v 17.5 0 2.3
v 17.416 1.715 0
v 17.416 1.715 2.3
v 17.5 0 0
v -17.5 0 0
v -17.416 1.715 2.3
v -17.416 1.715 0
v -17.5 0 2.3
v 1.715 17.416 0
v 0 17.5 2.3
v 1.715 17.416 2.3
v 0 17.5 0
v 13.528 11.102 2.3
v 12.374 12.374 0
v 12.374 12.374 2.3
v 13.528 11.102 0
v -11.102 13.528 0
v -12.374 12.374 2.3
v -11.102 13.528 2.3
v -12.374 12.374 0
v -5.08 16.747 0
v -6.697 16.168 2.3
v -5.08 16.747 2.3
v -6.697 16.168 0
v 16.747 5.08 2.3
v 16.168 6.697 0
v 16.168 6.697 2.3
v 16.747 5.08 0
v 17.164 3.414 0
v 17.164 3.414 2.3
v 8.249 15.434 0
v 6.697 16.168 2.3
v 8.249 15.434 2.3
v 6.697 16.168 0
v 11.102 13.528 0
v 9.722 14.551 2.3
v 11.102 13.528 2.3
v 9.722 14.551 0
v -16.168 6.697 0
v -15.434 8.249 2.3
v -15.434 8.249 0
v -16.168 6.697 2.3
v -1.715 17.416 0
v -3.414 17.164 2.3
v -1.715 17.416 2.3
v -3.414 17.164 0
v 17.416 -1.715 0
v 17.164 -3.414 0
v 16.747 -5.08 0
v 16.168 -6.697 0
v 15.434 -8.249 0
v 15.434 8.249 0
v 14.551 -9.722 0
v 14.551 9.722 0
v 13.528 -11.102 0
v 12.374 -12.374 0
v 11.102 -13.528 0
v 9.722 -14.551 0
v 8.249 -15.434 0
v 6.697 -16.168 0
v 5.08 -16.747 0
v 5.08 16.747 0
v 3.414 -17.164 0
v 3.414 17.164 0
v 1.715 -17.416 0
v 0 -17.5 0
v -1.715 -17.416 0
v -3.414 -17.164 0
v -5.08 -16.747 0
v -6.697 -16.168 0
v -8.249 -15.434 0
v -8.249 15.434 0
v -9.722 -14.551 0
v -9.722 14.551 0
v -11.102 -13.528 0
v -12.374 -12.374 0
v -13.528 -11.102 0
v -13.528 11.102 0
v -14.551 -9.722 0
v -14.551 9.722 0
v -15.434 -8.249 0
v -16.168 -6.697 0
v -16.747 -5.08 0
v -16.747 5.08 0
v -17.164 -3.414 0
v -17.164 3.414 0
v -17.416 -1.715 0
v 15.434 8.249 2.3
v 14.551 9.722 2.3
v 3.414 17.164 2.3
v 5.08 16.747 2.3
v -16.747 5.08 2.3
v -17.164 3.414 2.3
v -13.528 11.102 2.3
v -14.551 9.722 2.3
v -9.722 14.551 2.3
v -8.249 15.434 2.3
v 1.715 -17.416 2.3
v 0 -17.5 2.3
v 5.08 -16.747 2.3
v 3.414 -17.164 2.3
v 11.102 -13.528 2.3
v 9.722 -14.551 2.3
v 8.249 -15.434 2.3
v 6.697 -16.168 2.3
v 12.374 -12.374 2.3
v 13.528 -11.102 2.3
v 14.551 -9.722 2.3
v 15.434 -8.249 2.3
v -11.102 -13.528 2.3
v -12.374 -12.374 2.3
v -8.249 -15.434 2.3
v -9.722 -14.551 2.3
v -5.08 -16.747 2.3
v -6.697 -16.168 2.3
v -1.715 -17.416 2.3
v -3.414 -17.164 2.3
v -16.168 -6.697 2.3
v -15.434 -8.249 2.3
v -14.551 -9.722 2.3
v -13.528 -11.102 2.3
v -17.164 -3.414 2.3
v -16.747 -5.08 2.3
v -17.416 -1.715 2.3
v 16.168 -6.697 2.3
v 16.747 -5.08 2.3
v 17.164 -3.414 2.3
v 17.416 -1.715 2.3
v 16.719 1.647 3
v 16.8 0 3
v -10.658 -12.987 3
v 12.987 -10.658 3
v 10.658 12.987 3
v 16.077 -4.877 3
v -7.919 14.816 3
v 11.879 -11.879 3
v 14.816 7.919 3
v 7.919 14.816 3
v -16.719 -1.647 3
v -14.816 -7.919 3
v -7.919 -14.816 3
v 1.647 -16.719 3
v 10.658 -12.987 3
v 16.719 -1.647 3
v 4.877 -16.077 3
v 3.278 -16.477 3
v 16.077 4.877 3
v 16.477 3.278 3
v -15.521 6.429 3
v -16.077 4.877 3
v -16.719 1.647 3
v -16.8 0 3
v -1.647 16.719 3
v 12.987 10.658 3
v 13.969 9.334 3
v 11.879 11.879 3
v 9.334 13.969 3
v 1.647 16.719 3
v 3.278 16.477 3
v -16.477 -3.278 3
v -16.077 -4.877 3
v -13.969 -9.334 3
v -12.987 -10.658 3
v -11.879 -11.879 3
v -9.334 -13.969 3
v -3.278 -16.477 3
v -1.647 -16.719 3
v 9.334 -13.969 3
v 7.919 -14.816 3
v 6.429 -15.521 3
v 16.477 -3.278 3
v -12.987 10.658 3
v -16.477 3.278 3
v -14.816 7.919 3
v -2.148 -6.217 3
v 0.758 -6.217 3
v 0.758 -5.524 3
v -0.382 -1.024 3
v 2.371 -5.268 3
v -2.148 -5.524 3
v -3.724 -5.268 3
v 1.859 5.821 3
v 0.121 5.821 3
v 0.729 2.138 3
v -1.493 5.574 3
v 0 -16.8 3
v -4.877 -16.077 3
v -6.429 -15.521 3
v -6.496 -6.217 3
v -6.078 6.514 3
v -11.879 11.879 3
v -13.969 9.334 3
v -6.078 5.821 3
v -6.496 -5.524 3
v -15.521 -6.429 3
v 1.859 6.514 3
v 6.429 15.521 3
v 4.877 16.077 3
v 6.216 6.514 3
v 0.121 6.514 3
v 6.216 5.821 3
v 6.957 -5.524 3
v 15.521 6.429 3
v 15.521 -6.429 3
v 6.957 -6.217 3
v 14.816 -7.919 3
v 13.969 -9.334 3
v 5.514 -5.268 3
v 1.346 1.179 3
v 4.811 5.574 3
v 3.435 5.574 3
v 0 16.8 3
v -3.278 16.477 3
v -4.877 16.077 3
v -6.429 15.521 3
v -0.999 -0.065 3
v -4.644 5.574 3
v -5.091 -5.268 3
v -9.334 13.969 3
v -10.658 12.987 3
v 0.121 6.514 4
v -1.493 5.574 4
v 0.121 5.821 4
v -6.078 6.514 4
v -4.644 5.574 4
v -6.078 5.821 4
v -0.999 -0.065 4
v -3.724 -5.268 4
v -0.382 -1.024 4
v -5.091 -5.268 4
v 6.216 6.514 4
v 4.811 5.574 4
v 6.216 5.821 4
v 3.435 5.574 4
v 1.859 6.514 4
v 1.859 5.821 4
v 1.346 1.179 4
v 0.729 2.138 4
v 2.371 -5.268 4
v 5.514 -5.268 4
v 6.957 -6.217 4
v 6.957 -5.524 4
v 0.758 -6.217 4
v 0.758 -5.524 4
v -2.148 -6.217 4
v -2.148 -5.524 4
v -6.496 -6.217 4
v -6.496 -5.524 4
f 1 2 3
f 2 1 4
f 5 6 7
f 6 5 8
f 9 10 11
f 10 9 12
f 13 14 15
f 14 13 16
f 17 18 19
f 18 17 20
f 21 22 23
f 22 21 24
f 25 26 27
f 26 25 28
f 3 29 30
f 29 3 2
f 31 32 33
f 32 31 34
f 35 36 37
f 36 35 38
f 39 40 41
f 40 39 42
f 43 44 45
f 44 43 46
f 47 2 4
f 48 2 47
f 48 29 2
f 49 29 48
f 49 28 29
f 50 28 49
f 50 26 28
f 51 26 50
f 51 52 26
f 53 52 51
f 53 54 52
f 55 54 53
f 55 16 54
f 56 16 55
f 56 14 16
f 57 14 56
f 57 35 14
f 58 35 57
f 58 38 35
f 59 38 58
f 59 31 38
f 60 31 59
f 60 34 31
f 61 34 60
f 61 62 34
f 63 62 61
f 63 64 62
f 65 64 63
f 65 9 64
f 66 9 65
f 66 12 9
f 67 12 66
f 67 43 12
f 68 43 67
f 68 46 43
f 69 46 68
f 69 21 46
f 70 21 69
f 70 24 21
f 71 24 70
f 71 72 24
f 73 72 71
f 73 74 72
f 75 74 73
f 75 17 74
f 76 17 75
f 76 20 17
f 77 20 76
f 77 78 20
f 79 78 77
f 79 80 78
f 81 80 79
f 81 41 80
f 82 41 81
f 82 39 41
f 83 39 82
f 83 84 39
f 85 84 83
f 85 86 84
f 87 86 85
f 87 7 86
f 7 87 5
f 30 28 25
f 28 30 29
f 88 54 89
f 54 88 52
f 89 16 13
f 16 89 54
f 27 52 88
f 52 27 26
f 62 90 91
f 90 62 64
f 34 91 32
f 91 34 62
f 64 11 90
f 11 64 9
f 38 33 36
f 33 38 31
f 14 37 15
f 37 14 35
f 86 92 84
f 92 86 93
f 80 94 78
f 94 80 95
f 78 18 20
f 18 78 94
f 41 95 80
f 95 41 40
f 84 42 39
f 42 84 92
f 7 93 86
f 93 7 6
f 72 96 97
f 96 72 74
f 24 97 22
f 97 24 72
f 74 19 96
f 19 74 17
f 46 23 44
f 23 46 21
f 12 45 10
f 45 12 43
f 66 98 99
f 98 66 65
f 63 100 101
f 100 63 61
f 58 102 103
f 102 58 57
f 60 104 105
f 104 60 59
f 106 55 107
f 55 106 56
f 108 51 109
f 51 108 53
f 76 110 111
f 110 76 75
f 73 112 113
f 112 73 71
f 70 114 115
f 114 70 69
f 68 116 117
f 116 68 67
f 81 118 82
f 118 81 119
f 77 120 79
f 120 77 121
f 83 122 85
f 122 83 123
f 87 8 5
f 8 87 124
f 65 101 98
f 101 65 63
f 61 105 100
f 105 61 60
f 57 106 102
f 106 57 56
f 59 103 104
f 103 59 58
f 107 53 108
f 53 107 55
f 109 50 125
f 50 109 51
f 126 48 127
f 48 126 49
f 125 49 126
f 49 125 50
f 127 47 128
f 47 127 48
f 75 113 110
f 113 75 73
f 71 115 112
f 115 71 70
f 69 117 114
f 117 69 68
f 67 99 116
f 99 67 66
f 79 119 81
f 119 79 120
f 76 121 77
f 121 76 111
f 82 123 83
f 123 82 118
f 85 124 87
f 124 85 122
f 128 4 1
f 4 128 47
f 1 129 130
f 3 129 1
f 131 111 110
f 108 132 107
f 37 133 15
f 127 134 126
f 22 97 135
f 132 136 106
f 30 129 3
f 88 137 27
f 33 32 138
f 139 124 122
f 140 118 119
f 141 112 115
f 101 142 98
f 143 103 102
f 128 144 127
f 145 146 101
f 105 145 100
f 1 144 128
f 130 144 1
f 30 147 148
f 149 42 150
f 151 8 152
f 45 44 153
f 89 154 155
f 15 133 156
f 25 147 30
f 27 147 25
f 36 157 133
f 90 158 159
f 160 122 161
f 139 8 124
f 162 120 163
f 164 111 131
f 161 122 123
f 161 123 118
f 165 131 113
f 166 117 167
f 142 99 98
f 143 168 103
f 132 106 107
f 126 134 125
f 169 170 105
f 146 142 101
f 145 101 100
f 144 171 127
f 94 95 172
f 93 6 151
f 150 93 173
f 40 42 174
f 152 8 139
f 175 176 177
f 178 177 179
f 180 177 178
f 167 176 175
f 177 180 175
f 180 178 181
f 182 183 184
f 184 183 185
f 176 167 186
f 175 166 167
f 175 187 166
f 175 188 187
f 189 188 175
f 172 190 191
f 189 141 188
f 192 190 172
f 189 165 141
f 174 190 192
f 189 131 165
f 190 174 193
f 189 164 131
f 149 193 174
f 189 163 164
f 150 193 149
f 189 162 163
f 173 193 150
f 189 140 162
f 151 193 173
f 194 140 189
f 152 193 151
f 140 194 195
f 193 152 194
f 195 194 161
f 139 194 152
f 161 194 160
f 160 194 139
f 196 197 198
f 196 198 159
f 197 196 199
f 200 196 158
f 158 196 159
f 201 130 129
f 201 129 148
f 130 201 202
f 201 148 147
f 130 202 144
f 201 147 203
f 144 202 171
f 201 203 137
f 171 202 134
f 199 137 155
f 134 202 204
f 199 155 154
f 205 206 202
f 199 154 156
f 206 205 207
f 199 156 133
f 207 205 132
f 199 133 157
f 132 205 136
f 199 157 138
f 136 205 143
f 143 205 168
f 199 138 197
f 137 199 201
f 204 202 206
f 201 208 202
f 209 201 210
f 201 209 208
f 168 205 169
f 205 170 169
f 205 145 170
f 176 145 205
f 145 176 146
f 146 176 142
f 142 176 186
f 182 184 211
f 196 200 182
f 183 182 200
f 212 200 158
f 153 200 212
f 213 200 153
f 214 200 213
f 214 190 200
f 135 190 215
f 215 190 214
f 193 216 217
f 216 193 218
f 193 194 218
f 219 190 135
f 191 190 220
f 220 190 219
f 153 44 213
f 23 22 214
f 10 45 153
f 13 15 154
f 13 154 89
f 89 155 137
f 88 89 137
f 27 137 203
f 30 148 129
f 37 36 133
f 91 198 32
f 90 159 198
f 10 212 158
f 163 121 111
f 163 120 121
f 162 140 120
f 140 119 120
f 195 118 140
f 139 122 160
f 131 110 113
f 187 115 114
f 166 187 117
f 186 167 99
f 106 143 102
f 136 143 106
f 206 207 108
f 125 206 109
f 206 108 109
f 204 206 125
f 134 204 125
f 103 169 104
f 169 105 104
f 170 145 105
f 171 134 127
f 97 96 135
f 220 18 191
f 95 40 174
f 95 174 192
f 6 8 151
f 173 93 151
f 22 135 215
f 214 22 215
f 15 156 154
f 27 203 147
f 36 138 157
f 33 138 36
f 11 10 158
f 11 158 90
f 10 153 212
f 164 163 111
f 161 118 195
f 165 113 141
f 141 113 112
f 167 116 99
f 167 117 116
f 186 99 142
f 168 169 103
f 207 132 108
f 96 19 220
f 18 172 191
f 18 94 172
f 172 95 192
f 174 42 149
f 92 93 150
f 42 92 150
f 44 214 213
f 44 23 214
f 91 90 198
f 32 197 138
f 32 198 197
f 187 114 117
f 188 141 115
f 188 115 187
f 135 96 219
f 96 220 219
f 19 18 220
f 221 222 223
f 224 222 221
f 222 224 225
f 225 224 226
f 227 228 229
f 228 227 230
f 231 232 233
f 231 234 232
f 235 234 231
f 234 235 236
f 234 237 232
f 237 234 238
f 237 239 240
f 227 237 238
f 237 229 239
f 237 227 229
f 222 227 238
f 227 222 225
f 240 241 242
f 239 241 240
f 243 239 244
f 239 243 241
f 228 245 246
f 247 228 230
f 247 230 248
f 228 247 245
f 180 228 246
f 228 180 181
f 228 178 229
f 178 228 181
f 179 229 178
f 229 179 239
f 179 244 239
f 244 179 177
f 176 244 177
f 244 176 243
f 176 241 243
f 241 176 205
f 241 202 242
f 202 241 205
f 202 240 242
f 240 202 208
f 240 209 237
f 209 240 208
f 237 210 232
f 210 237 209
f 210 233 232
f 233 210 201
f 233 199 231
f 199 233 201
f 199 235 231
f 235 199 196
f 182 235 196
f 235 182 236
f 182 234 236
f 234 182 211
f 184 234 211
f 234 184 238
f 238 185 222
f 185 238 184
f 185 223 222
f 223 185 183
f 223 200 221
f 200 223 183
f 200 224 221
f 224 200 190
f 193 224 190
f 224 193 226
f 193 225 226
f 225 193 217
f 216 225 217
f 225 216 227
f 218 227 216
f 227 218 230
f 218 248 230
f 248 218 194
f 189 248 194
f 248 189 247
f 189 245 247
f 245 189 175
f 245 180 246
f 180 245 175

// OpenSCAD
// DP-02 · Moneda histórica Ø 35 x 3 mm con bisel
// Diseño e Impresión 3D en el aula · Pablo Moraga · CC BY-NC-ND 4.0
$fn = 64;
cylinder(d = 35, h = 2.3);
translate([0, 0, 2.3]) cylinder(d1 = 35, d2 = 33.6, h = 0.7);
translate([0, 0, 3]) linear_extrude(1) text("X", size = 14, halign = "center", valign = "center", font = "Liberation Serif:style=Bold");
